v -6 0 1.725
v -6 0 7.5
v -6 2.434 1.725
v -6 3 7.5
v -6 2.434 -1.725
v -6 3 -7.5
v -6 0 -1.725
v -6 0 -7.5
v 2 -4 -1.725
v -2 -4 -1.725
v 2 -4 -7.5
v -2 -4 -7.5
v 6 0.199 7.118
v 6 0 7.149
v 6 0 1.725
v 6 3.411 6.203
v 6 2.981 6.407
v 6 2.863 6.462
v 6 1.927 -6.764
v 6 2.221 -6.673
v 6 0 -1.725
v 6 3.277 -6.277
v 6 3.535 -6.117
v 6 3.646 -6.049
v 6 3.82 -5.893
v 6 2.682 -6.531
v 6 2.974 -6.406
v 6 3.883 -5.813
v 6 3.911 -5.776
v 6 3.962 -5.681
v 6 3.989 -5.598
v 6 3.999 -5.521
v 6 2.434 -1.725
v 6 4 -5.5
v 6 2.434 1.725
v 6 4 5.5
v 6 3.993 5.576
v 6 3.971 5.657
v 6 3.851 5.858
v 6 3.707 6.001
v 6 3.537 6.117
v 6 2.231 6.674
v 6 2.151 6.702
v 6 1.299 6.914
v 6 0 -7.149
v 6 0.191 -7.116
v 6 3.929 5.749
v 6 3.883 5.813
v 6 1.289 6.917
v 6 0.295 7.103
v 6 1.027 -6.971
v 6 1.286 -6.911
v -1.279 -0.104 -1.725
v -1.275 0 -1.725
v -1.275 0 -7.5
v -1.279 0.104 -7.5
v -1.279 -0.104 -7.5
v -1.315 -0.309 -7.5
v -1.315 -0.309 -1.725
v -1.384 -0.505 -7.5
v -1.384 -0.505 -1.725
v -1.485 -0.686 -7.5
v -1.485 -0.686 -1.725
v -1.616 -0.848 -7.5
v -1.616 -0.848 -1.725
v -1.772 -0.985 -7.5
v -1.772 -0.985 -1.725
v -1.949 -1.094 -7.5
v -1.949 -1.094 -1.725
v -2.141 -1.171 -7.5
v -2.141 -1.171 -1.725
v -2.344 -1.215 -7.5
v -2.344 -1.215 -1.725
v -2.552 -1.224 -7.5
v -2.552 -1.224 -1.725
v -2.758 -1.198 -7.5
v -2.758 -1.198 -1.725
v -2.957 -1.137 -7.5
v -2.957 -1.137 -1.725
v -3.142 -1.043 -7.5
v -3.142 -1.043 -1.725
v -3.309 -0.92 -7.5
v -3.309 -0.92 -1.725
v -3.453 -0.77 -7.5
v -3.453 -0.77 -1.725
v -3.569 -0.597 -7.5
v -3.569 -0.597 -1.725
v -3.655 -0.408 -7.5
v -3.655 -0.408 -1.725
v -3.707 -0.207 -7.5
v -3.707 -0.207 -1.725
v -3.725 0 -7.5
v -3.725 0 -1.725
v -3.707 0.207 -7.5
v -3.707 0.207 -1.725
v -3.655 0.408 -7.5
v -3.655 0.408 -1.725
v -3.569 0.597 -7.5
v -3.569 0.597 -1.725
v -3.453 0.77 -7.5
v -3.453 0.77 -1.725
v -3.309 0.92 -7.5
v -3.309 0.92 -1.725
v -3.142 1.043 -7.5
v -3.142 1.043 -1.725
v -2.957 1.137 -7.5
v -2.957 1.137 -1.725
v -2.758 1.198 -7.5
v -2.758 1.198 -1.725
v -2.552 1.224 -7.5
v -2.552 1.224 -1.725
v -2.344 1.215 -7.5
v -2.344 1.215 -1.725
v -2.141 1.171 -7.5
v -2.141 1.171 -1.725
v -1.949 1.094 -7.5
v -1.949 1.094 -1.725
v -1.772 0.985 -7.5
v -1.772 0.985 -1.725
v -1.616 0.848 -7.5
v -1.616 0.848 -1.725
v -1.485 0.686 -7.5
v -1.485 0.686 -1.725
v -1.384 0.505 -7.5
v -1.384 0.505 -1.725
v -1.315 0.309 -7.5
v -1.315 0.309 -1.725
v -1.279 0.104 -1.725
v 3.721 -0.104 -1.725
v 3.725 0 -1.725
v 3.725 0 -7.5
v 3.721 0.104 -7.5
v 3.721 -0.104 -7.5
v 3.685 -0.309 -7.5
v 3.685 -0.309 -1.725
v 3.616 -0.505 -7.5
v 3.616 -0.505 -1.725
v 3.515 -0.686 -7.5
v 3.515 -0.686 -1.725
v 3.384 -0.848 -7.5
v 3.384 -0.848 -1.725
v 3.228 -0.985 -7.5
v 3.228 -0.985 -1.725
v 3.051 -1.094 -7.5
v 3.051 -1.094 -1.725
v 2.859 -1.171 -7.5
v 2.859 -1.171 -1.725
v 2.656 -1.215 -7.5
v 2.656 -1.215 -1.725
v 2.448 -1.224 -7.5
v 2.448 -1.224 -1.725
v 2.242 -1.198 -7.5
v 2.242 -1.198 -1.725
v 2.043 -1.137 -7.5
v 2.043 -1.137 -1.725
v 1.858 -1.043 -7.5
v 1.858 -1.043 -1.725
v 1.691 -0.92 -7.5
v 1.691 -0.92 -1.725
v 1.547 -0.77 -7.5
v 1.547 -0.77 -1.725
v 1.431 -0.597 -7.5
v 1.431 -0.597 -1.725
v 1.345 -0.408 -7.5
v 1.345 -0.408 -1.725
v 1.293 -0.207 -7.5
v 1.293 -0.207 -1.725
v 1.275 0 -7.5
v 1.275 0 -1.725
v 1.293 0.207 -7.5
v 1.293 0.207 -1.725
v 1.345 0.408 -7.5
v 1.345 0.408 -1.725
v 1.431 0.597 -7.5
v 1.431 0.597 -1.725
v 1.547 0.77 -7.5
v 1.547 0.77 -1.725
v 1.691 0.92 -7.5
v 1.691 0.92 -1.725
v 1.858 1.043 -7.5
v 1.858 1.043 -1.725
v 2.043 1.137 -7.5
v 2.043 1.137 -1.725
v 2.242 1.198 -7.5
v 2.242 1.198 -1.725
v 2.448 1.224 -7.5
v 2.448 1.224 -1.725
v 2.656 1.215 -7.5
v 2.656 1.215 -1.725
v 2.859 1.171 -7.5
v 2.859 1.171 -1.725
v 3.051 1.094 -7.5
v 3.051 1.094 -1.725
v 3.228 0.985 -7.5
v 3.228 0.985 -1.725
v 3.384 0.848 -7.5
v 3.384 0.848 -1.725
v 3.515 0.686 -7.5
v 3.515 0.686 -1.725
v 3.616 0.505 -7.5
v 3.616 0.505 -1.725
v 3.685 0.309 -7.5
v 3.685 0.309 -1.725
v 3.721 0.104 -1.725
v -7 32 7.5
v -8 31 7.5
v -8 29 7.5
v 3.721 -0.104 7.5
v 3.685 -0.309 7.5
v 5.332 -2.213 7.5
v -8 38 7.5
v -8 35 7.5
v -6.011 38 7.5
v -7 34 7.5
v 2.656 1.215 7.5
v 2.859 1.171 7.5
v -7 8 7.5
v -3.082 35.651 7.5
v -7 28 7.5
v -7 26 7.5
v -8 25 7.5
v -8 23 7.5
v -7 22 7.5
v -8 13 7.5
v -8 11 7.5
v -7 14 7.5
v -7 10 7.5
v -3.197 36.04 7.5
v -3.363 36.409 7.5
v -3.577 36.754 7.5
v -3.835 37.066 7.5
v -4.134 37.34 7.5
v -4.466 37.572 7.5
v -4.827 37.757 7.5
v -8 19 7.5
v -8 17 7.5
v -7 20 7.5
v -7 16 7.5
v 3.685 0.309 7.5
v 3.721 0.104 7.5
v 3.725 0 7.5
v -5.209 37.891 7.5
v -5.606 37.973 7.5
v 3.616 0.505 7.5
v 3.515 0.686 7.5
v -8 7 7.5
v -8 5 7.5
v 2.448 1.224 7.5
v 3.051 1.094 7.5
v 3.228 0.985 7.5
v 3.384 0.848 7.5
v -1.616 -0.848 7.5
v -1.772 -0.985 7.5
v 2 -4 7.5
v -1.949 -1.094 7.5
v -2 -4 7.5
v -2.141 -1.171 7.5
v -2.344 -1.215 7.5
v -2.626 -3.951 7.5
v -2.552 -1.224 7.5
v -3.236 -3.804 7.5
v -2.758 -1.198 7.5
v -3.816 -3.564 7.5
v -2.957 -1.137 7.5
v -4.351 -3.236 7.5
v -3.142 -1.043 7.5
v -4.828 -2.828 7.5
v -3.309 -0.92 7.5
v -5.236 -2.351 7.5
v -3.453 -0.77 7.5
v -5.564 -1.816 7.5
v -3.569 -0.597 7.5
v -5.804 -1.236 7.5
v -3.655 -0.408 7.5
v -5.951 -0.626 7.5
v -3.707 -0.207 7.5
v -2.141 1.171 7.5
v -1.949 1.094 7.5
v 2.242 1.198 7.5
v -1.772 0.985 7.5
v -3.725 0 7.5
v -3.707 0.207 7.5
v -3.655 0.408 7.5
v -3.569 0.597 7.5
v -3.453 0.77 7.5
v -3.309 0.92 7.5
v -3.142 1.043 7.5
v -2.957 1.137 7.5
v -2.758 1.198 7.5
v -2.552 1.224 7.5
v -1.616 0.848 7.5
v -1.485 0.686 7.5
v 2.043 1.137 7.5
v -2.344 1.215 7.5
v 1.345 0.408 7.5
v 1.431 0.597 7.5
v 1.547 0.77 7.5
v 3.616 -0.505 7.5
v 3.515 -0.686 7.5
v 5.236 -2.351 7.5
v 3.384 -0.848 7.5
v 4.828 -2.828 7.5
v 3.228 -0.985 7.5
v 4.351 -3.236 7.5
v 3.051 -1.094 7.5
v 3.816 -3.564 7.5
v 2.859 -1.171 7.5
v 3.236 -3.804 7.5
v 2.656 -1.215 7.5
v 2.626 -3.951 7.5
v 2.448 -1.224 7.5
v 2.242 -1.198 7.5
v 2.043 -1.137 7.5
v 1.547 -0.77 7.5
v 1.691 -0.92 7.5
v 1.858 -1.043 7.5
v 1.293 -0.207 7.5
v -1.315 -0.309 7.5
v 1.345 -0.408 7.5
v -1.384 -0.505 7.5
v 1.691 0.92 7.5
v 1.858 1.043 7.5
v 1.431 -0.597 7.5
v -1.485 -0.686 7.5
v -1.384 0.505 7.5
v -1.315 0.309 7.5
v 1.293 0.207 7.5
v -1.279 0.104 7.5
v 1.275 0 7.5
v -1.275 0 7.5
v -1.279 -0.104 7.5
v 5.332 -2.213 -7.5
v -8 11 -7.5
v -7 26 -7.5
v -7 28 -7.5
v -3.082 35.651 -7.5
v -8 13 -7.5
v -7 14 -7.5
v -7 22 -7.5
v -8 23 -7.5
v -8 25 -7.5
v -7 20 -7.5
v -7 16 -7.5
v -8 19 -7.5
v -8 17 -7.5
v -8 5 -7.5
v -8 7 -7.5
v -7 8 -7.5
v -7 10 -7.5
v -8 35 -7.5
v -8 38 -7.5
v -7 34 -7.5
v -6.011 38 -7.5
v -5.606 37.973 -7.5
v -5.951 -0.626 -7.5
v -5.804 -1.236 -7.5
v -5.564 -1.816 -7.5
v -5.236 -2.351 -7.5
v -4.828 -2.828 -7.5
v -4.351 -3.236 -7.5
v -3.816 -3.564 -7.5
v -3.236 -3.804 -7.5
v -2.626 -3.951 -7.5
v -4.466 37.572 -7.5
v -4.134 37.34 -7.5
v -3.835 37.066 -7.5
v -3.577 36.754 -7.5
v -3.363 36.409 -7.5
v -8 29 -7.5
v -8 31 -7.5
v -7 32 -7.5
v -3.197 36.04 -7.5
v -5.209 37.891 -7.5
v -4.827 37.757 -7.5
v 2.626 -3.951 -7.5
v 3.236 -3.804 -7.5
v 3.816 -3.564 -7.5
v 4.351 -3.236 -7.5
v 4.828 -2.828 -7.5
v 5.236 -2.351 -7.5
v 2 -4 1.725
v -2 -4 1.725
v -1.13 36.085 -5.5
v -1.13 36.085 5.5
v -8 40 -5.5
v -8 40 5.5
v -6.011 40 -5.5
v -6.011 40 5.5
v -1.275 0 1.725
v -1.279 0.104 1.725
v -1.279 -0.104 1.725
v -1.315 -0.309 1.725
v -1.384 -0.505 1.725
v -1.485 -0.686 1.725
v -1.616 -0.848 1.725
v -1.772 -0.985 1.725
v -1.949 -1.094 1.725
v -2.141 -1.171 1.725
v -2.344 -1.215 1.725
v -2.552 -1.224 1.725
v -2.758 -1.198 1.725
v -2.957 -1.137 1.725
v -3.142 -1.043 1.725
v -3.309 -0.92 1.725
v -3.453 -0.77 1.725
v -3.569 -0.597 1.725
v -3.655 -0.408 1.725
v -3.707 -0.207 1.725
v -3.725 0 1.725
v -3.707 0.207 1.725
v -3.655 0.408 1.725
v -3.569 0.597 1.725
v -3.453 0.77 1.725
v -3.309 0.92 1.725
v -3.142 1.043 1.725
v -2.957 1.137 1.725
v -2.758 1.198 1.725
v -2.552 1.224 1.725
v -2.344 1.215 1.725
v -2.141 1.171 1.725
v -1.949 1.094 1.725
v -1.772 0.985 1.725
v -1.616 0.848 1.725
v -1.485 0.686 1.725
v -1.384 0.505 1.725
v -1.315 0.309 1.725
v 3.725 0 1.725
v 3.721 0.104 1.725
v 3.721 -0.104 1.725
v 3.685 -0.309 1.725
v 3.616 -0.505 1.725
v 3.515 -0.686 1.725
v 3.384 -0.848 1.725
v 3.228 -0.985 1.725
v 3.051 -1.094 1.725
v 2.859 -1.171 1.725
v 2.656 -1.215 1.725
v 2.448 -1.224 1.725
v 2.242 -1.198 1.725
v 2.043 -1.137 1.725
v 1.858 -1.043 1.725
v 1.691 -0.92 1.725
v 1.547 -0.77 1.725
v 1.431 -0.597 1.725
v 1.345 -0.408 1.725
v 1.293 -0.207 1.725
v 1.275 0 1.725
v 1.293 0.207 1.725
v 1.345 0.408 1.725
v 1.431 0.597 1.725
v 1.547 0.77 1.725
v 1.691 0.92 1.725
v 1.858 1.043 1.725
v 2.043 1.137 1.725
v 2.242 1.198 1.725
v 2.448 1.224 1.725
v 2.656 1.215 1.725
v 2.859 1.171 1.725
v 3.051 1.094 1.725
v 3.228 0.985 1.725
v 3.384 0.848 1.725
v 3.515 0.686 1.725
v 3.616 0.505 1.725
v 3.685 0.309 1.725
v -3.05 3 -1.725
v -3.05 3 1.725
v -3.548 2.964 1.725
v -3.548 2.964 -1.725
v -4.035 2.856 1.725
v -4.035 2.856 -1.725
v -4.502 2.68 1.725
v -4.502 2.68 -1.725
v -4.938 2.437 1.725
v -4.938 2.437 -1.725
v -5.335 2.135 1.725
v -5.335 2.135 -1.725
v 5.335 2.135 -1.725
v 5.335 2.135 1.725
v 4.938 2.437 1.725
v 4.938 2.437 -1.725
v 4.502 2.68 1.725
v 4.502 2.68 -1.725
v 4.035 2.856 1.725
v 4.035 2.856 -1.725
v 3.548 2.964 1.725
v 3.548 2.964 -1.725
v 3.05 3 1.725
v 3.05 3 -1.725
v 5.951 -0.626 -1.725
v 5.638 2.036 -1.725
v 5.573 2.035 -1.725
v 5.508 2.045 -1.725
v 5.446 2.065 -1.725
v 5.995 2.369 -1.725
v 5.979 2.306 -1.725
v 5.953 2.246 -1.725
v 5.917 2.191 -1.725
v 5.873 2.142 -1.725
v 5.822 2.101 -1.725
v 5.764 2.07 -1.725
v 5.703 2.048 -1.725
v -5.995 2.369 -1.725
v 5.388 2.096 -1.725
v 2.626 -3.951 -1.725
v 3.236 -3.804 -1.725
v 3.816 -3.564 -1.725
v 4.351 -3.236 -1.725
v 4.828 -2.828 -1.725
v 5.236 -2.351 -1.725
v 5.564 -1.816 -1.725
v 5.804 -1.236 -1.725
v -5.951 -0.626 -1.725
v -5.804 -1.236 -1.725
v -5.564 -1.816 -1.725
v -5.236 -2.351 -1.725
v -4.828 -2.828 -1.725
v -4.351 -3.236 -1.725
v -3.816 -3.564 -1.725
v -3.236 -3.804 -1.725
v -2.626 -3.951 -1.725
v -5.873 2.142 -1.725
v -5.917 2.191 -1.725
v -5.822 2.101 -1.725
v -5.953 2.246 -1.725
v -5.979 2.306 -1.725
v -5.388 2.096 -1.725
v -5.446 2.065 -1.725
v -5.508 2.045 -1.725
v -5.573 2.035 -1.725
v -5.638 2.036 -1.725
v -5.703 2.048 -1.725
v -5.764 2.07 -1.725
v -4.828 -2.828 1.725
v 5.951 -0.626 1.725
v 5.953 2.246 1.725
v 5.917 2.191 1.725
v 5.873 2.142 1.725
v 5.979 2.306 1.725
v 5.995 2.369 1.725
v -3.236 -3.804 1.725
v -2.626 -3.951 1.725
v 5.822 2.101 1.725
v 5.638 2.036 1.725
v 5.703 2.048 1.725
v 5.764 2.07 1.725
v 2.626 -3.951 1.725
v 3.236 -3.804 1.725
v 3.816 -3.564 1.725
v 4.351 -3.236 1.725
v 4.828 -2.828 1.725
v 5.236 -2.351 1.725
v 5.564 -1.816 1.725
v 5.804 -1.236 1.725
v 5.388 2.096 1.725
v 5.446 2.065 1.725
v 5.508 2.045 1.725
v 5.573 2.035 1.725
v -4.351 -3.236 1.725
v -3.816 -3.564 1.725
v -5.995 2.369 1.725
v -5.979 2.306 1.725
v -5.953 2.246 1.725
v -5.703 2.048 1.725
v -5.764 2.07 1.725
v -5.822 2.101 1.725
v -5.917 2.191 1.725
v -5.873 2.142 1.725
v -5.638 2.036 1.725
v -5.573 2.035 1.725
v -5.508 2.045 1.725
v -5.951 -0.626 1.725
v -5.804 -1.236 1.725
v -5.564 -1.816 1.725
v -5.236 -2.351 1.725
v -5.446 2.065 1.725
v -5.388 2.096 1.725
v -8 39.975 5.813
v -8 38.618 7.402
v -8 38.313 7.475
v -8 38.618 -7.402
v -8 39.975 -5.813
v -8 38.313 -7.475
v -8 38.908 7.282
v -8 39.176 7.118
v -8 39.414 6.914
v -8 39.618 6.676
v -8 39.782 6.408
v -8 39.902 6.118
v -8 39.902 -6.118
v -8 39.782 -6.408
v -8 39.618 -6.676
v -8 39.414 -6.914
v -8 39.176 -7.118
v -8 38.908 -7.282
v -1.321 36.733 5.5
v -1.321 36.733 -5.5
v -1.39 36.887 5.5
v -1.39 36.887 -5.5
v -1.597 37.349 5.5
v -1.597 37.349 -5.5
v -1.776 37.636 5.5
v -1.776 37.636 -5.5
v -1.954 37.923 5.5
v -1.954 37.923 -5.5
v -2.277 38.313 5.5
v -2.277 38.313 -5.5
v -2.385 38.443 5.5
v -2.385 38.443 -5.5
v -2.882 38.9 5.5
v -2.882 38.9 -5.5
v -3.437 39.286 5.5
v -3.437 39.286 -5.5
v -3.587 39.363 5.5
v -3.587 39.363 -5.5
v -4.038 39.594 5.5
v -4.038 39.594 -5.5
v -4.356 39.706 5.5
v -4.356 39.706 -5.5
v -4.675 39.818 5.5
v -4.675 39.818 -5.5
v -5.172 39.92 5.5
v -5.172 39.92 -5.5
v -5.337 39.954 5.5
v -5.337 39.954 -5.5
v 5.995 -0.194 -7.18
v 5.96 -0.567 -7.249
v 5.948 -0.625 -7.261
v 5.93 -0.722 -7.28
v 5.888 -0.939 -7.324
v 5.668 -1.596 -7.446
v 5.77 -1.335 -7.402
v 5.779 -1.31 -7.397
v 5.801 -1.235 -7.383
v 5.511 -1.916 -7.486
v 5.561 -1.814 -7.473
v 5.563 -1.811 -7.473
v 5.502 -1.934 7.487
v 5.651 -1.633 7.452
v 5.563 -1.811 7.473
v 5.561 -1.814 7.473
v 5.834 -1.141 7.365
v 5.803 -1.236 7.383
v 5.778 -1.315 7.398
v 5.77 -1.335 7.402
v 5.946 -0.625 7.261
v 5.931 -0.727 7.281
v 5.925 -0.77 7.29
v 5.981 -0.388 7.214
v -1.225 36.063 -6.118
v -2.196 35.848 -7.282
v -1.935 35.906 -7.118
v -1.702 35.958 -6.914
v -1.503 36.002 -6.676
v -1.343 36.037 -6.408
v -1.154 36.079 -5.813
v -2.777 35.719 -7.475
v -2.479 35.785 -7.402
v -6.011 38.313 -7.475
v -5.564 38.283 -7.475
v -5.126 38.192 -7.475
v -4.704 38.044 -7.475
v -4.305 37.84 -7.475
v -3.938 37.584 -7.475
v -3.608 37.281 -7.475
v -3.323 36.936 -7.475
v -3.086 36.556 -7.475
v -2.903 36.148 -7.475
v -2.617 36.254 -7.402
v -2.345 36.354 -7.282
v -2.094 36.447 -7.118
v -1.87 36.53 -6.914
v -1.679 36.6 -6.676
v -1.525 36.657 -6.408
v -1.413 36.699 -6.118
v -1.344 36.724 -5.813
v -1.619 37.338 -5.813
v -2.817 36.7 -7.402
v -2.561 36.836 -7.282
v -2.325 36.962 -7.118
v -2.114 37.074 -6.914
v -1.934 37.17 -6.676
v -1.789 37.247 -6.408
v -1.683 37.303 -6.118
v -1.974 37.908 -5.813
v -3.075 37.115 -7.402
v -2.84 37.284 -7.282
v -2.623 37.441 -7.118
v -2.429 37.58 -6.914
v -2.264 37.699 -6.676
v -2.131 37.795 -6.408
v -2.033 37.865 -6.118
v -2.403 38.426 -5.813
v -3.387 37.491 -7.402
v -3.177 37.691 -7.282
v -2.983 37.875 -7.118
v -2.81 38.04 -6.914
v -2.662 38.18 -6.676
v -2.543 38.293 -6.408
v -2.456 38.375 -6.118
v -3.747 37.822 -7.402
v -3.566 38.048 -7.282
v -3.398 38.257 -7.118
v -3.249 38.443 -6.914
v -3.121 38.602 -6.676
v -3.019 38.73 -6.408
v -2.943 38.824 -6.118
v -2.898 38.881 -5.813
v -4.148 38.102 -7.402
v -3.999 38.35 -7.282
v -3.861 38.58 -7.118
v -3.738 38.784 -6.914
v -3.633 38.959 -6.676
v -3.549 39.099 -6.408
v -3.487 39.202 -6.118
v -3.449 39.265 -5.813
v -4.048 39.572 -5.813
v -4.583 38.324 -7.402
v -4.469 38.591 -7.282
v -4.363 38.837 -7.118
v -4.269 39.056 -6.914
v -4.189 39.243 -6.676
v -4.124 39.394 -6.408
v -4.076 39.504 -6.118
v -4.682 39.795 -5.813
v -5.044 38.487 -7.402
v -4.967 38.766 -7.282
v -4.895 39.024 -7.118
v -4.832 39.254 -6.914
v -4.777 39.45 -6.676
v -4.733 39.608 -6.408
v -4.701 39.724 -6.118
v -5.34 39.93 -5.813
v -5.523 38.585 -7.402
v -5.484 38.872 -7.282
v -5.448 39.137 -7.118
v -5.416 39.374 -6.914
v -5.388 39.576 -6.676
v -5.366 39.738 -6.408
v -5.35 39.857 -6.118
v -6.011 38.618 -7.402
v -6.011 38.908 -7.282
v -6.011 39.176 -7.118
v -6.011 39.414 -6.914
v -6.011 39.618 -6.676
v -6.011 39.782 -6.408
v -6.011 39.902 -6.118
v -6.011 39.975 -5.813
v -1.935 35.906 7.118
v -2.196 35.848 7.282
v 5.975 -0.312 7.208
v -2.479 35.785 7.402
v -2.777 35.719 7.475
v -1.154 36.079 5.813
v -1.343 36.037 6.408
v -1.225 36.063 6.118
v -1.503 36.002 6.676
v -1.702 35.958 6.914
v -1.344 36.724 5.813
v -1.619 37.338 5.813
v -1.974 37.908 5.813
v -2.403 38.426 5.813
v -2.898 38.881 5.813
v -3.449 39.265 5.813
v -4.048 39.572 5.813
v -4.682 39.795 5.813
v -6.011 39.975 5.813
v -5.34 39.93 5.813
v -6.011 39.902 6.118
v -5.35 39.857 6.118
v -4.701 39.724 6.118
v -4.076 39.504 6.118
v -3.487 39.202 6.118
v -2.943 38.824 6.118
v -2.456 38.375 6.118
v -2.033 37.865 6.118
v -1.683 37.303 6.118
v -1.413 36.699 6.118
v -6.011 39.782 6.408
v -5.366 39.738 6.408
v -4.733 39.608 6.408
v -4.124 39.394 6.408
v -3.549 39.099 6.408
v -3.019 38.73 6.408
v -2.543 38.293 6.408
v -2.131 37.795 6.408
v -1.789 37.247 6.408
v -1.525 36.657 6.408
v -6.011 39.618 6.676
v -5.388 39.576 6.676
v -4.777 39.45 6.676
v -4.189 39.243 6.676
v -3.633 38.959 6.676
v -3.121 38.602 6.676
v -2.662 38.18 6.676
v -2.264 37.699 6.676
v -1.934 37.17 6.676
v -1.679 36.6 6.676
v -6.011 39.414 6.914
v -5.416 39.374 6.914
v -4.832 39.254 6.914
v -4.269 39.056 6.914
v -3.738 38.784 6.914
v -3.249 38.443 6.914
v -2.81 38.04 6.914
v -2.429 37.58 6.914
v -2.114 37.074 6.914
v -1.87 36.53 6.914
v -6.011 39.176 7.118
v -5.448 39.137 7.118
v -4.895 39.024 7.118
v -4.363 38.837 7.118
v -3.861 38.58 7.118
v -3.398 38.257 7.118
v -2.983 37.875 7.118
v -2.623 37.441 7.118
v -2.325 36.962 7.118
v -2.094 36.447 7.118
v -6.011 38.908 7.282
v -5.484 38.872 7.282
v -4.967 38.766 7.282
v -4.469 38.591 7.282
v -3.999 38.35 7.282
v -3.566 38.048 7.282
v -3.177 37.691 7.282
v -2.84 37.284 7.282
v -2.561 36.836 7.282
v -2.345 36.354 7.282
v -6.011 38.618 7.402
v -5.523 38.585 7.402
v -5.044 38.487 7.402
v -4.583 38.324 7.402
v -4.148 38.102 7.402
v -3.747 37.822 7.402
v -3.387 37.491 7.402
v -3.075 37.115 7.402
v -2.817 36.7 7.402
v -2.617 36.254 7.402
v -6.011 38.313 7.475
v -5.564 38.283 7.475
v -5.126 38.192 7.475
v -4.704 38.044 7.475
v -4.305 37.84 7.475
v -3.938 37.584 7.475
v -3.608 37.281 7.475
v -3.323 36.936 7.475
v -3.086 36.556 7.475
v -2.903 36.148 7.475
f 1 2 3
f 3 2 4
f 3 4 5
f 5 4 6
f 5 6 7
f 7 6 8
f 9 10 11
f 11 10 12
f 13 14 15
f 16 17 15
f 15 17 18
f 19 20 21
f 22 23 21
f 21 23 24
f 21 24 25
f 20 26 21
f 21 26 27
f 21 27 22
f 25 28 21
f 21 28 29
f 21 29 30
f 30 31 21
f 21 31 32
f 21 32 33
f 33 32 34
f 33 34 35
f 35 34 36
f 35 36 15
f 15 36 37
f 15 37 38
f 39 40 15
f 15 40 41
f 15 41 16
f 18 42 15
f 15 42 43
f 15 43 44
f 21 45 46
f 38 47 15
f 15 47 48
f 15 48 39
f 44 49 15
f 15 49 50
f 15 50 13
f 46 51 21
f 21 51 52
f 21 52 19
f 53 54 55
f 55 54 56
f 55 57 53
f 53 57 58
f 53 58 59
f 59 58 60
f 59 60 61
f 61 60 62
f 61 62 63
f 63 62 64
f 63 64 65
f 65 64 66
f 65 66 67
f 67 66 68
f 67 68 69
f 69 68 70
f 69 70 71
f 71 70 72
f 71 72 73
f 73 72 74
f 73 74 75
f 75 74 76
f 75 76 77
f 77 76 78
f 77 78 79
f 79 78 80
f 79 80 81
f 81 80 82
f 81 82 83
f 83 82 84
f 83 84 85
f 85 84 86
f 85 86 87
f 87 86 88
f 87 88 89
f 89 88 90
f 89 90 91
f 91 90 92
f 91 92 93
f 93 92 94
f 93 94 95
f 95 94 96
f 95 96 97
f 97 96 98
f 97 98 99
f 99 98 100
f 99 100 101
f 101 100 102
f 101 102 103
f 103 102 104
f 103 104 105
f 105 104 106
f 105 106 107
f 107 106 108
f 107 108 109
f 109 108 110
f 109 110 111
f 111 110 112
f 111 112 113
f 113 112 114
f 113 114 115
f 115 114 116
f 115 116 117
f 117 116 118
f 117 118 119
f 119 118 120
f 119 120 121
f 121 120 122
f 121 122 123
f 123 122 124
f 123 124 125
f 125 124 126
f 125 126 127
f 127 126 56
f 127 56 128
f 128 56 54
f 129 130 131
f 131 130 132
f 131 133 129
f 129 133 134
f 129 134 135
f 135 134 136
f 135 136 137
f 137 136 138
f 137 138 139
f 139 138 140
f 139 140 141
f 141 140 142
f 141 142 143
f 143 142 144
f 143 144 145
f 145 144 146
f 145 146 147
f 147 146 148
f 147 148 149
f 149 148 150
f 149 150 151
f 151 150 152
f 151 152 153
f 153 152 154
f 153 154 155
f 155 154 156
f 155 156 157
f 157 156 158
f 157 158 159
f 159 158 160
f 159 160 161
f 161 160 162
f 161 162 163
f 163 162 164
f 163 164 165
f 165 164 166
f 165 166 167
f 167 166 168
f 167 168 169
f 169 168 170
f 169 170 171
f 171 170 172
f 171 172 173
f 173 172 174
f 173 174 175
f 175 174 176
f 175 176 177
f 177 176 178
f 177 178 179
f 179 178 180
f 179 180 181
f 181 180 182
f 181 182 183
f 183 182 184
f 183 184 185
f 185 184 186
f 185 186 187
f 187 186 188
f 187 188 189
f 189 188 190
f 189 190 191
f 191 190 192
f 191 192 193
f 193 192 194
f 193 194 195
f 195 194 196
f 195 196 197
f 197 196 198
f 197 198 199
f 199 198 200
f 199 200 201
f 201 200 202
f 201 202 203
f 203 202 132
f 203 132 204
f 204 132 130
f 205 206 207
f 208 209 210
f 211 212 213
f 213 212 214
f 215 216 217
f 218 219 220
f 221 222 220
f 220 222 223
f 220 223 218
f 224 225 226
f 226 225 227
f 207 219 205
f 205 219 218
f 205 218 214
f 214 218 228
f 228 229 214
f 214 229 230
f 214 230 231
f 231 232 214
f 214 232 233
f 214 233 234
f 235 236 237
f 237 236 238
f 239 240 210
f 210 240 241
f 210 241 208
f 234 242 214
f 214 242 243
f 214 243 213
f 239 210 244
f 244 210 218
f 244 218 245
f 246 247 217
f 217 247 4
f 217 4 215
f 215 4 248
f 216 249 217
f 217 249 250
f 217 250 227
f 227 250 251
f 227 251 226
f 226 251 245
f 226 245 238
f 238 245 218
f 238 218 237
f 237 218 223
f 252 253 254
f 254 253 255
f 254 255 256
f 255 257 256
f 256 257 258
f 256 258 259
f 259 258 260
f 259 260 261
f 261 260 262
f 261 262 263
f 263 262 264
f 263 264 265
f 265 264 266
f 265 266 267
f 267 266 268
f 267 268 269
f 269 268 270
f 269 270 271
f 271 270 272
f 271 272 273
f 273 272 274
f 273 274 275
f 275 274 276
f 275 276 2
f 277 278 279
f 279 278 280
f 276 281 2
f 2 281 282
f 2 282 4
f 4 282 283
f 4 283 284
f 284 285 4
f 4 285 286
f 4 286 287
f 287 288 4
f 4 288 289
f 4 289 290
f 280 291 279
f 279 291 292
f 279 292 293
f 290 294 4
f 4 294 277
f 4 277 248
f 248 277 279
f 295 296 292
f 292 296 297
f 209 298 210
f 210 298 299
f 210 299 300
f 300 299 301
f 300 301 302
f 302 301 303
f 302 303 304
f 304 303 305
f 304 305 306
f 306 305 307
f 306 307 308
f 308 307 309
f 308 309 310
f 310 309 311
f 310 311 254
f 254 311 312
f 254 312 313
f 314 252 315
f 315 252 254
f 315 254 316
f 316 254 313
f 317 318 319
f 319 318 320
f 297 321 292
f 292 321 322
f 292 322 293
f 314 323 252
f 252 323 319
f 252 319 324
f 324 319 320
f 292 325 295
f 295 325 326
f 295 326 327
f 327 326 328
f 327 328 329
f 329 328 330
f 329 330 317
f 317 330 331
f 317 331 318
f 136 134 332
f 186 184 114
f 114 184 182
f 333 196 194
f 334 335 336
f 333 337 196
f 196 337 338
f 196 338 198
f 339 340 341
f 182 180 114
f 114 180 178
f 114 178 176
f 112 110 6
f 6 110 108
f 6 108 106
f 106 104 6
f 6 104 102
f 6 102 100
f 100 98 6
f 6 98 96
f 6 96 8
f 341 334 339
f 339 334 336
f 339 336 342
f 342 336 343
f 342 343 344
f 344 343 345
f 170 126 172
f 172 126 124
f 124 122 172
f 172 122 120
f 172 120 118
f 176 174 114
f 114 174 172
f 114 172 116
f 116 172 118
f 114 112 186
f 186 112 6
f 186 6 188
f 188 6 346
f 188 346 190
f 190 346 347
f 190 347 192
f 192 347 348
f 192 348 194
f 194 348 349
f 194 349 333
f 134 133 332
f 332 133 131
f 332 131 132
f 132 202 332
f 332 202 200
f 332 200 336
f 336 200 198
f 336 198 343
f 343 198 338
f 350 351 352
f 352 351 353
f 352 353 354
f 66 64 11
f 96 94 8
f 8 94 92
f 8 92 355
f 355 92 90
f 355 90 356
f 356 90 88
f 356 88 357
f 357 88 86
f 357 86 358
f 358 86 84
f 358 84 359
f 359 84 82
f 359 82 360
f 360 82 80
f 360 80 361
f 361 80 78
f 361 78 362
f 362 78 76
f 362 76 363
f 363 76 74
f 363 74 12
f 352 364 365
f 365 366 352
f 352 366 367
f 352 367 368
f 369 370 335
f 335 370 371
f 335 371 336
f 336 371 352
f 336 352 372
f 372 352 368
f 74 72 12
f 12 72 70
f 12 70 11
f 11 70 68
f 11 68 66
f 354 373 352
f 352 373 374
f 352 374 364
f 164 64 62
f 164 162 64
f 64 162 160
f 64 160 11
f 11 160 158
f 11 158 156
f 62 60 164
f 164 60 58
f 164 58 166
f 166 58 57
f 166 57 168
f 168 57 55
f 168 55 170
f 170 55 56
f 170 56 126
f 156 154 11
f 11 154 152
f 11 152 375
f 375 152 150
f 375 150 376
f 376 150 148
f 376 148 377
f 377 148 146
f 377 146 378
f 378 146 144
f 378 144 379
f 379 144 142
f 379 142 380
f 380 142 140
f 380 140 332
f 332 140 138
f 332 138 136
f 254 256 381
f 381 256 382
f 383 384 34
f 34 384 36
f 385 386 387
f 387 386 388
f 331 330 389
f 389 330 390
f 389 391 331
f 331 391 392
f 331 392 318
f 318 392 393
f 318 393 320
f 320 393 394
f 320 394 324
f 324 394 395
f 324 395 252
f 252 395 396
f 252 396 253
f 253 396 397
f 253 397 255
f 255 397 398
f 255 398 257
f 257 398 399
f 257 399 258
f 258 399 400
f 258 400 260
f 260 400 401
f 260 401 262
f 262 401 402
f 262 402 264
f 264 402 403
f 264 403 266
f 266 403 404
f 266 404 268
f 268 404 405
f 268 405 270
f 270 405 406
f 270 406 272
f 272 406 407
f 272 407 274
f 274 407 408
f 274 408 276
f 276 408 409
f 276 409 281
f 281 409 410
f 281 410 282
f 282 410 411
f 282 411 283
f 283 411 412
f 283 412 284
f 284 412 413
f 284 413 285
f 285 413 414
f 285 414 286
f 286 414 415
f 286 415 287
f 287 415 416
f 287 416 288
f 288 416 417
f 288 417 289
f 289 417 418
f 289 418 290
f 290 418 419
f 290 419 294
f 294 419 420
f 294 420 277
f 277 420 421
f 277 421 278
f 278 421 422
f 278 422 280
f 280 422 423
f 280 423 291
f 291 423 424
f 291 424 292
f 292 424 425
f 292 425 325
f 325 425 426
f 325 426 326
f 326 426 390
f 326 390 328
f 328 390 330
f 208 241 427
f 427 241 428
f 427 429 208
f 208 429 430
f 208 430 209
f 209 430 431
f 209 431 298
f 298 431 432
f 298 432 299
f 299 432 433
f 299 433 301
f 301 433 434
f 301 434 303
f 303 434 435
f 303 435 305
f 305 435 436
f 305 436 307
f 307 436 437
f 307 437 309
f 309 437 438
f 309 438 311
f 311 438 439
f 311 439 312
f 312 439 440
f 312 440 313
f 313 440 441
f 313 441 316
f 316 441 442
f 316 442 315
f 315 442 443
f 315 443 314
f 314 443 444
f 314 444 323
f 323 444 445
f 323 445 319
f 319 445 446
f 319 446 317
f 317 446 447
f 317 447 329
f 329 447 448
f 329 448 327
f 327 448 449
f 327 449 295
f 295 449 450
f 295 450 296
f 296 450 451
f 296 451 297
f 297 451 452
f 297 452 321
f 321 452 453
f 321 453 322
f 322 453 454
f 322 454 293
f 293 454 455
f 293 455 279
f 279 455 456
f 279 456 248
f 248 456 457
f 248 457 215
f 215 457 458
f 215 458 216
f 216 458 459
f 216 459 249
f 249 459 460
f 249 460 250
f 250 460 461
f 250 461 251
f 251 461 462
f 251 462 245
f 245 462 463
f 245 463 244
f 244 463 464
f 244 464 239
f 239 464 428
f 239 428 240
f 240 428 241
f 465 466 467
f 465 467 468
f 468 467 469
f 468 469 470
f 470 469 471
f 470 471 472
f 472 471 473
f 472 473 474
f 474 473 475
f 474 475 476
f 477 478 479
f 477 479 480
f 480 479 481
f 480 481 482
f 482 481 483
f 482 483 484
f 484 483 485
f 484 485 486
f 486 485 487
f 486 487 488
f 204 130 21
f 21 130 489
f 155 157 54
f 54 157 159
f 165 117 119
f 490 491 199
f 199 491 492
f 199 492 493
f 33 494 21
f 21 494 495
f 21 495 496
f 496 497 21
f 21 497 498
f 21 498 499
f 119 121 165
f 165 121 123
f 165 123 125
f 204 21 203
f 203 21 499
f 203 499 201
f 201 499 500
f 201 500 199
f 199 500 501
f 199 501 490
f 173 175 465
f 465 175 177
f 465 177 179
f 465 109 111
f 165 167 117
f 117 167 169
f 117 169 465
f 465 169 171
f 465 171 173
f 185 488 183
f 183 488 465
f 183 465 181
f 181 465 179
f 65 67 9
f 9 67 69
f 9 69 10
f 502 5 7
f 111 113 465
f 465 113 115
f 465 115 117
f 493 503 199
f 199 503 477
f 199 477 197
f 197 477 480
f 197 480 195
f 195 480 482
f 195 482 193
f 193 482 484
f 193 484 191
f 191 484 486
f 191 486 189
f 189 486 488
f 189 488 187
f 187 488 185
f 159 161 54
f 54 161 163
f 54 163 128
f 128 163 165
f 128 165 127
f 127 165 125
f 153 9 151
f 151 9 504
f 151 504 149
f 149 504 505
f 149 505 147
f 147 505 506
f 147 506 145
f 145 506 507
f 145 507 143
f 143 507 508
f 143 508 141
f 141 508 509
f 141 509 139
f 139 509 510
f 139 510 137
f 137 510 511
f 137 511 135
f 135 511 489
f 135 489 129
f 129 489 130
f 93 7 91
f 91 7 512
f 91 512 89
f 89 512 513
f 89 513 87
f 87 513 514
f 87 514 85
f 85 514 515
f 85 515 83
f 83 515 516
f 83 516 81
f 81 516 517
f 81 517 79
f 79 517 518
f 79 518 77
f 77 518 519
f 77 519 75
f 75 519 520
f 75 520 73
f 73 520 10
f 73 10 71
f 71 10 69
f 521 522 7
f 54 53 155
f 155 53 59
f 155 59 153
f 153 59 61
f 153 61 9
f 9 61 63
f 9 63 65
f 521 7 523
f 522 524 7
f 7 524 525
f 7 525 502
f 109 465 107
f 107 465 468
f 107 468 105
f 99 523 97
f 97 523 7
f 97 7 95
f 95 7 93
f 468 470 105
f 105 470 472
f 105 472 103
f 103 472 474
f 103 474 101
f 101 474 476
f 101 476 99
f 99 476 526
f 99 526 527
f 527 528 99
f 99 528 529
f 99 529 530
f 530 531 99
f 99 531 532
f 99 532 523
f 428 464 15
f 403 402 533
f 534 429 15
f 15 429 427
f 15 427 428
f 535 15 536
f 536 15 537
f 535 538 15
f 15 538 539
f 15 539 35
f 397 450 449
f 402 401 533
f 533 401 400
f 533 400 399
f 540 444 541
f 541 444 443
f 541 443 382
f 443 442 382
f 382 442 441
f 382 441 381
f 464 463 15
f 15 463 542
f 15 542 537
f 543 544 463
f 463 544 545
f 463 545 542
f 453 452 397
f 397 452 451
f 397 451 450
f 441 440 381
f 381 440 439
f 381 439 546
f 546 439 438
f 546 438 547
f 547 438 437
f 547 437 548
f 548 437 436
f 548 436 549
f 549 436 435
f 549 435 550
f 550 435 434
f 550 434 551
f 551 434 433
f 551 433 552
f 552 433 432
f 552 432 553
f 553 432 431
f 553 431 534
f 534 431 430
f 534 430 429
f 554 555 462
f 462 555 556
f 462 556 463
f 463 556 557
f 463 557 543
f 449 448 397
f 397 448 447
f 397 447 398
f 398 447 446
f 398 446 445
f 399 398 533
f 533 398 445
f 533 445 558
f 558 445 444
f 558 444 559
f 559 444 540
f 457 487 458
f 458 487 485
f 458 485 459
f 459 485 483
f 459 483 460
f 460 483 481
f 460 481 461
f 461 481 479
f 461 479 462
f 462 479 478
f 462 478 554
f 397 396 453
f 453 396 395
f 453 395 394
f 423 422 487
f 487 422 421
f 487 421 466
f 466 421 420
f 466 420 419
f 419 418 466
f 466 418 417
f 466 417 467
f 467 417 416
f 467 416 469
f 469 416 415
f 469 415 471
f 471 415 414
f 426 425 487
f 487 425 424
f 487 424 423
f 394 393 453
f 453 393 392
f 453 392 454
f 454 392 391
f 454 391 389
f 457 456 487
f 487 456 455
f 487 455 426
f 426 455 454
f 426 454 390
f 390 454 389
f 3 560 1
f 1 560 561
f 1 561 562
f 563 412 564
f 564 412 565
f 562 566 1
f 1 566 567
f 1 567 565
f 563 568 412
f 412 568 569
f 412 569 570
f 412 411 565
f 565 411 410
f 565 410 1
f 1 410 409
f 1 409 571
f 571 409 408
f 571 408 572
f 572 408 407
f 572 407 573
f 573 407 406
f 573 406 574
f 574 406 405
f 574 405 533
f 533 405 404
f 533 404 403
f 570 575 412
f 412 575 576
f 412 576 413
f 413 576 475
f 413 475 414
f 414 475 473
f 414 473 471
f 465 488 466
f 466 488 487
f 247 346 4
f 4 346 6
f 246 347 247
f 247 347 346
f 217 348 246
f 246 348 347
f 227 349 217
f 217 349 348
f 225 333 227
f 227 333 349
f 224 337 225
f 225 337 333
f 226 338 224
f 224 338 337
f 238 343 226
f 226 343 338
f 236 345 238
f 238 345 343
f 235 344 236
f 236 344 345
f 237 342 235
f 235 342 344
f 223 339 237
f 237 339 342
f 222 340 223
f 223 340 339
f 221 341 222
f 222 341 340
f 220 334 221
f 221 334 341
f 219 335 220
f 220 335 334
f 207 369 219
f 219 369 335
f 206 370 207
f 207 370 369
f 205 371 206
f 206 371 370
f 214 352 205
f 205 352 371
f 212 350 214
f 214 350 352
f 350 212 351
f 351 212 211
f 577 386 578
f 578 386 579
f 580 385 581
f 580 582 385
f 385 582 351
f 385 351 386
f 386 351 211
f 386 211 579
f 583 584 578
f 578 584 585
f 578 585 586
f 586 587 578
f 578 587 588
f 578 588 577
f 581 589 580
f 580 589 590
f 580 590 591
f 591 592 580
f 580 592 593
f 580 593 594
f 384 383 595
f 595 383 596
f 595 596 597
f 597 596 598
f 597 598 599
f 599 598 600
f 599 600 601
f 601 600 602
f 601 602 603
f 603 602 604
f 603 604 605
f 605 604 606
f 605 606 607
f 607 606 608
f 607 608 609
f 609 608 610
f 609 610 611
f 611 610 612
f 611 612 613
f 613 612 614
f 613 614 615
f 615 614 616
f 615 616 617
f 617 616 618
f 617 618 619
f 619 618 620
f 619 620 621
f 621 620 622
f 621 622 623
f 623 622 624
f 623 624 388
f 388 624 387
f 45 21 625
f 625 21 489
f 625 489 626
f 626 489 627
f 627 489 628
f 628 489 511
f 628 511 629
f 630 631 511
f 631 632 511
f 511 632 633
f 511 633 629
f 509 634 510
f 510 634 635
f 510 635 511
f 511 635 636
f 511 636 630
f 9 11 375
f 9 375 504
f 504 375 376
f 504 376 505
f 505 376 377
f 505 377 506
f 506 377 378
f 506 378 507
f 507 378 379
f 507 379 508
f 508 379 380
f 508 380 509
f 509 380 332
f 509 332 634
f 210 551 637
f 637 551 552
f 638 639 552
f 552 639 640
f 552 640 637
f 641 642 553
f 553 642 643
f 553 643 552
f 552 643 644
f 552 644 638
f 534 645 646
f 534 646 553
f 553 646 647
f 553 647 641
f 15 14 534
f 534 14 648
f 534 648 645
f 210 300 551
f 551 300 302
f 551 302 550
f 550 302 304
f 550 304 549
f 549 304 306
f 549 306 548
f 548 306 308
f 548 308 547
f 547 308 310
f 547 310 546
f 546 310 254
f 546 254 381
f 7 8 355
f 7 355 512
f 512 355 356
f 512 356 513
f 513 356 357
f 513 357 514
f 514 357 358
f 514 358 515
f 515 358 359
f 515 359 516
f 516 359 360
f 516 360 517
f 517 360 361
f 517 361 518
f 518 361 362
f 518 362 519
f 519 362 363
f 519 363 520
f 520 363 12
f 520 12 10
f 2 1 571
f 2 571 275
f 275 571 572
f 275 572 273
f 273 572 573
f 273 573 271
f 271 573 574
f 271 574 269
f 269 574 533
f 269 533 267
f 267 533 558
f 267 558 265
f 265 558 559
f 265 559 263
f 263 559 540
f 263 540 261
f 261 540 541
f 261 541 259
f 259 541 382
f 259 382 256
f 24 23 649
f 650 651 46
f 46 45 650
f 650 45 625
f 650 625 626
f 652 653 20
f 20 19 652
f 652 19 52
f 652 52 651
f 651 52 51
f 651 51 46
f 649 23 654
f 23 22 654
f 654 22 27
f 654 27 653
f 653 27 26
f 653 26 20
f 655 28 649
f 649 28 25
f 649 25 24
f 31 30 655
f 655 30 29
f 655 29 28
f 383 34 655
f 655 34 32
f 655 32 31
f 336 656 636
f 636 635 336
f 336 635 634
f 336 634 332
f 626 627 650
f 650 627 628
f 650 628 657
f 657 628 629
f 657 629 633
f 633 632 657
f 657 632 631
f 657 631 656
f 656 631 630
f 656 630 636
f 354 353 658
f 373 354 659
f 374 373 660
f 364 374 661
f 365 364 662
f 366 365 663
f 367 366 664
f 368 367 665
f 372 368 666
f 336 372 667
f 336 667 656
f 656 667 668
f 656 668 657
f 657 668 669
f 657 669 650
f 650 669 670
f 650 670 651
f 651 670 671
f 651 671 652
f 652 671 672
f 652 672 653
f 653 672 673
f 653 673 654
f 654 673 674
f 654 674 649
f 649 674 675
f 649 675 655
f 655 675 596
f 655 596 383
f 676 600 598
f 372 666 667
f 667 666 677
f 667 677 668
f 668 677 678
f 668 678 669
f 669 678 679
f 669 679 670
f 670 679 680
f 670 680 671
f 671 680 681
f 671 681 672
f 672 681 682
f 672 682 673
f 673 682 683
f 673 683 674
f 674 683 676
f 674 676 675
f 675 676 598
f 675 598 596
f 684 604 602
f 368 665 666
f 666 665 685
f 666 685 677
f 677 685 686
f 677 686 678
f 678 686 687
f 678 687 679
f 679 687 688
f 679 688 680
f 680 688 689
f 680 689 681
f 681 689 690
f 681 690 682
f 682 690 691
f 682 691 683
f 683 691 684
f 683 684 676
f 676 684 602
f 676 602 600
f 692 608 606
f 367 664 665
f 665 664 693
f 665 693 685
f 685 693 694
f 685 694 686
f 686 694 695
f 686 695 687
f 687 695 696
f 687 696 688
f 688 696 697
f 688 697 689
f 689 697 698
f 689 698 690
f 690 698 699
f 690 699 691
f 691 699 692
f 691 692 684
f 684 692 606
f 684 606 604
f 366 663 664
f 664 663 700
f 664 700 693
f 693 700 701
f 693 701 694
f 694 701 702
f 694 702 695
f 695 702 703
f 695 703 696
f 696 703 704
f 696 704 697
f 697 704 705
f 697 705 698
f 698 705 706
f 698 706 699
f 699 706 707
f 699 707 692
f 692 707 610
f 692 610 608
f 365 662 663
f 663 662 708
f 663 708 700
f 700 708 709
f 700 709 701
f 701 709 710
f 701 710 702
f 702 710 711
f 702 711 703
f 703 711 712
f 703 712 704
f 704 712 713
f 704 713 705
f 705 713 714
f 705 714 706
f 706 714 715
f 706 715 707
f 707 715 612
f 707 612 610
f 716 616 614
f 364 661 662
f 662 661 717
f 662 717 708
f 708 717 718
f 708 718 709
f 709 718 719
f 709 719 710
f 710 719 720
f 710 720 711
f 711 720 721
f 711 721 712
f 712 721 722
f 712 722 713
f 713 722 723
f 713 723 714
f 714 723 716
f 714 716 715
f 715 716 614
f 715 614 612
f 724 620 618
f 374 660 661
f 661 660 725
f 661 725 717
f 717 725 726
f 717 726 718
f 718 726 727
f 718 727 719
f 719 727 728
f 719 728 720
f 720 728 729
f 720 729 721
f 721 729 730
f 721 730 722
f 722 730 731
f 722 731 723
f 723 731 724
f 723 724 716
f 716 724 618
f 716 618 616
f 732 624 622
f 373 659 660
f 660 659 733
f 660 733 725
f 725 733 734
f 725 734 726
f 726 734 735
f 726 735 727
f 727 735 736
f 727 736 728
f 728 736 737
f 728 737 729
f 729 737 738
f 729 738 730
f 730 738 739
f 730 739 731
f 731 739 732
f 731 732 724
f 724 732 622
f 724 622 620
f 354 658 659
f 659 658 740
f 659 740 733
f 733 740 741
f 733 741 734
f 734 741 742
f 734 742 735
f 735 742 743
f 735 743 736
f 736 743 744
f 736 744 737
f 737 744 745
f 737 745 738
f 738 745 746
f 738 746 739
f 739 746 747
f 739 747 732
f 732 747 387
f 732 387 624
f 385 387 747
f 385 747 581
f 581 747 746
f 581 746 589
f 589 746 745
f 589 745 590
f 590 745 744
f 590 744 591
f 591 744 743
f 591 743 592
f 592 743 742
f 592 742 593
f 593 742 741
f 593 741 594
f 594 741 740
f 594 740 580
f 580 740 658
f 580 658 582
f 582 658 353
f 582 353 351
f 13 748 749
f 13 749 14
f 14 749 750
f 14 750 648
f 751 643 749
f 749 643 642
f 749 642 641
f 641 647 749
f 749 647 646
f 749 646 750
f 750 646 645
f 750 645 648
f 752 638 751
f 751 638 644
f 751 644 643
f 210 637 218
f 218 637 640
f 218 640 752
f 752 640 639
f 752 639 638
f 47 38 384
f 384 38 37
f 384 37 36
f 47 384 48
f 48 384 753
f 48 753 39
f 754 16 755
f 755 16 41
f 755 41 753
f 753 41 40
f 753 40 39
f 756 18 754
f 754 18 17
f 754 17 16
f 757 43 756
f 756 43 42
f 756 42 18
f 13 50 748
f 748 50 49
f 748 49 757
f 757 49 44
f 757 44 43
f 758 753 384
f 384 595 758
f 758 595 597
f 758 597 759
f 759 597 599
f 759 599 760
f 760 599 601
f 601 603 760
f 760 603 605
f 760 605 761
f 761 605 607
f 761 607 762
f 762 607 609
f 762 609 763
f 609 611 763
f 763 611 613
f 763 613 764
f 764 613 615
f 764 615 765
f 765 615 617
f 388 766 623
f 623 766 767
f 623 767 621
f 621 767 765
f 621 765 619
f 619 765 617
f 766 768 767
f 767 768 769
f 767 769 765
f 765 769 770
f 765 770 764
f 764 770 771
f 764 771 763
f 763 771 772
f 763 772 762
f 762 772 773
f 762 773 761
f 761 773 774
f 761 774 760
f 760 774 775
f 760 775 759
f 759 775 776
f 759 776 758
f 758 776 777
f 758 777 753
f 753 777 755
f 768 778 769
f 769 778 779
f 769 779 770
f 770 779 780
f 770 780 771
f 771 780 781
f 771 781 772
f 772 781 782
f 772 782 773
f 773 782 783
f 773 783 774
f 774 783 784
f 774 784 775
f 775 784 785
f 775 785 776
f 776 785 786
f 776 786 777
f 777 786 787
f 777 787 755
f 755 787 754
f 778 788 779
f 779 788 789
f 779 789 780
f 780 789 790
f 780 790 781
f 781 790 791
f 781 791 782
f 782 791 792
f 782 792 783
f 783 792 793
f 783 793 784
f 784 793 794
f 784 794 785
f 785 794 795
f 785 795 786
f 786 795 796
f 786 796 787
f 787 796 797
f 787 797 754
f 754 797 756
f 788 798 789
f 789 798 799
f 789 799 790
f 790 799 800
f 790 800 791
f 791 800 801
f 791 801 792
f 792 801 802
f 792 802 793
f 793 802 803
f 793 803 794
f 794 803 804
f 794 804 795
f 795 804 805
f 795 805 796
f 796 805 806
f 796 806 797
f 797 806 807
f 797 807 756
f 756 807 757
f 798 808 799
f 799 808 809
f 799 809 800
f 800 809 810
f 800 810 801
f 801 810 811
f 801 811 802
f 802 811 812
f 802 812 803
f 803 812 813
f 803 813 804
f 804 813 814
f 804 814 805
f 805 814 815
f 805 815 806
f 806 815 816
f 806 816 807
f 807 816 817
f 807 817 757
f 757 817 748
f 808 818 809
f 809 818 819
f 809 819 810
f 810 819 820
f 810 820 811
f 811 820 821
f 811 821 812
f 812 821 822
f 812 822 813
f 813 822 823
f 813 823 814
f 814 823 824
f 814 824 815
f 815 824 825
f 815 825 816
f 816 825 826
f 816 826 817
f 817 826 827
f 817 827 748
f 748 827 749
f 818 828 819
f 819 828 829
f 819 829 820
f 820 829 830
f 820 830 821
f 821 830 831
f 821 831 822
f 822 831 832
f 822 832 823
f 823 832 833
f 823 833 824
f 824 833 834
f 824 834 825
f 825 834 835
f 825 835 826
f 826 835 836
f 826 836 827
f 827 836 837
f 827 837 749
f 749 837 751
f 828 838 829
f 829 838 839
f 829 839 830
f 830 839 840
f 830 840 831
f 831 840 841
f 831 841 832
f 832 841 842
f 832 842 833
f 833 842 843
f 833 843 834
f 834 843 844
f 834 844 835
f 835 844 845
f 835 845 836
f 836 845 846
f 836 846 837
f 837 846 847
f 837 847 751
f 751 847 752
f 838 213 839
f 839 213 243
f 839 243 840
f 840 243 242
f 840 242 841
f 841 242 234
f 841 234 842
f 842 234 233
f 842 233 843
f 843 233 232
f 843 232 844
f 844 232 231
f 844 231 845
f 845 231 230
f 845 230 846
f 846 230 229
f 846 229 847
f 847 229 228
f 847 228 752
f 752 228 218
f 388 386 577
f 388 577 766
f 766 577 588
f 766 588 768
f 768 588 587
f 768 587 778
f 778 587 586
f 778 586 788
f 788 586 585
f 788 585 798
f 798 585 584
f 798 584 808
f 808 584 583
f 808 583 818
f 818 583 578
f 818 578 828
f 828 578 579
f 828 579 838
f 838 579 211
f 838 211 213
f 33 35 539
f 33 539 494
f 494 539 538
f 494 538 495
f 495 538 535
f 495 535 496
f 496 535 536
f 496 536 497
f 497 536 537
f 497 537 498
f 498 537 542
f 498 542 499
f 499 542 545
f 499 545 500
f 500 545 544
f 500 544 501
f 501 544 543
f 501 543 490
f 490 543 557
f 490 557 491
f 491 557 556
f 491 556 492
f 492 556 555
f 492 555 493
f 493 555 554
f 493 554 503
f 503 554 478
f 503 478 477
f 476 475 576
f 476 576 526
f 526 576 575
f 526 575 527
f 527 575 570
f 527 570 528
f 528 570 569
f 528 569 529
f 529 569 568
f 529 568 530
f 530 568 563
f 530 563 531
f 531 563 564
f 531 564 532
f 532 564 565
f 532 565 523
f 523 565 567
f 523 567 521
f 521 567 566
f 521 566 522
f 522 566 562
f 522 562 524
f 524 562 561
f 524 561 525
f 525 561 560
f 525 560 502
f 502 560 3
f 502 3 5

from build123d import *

# Parameters (mm, degrees)
SKETCH1_R                       = 1.225
BOSS_EXTRUDE1_DEPTH             = 7.5
CUT_EXTRUDE2_DEPTH              = 1.725
BOSS_EXTRUDE3_REACH             = 43.137
BOSS_EXTRUDE3_DIRECTION_2_REACH = 43.137
FILLET5_R                       = 5
FILLET6_R                       = 4
FILLET7_R                       = 2
FILLET8_R                       = 0.4


with BuildPart() as part:
    # Sketch1 → Boss-Extrude1 (new, symmetric)
    with BuildSketch(Plane.XY):
        Polygon((-6, -4), (6, -4), (6, 4), (-2, 40), (-6, 40), align=None)
        with Locations((-2.5, 0)):
            Circle(SKETCH1_R, mode=Mode.SUBTRACT)
        with Locations((2.5, 0)):
            Circle(SKETCH1_R, mode=Mode.SUBTRACT)
    extrude(amount=BOSS_EXTRUDE1_DEPTH, both=True)

    # Sketch4 → Cut-Extrude2 (cut, symmetric)
    with BuildSketch(Plane.XY):
        with BuildLine():
            Line((-3.05, 3), (3.05, 3))
            ThreePointArc((3.05, 3), (5.489518395, 1.989518395), (6.5, -0.45))
            Line((6.5, -0.45), (6.5, -4))
            Line((6.5, -4), (-6.5, -4))
            Line((-6.5, -4), (-6.5, -0.45))
            ThreePointArc((-6.5, -0.45), (-5.489518395, 1.989518395), (-3.05, 3))
        make_face()
    extrude(amount=CUT_EXTRUDE2_DEPTH, both=True, mode=Mode.SUBTRACT)

    # Boss-Extrude3: up to this face of the body (flat: up to its plane)
    boss_extrude3_end = Plane(part.part.faces().sort_by_distance((-1.281464988, 14.60870086, 7.5))[0])
    # Sketch6 → Boss-Extrude3 (add, up to the picked face)
    with BuildSketch(Plane.XY, mode=Mode.PRIVATE) as boss_extrude3_sk1:
        Polygon((-6, 40), (-6, 3), (-8, 5), (-8, 7), (-7, 8), (-7, 10), (-8, 11), (-8, 13), (-7, 14), (-7, 16), (-8, 17), (-8, 19), (-7, 20), (-7, 22), (-8, 23), (-8, 25), (-7, 26), (-7, 28), (-8, 29), (-8, 31), (-7, 32), (-7, 34), (-8, 35), (-8, 40), align=None)
    boss_extrude3_tool1 = split(extrude(boss_extrude3_sk1.sketch, amount=BOSS_EXTRUDE3_REACH, mode=Mode.PRIVATE), bisect_by=boss_extrude3_end, keep=Keep.BOTH, mode=Mode.PRIVATE)
    add(boss_extrude3_tool1.solids().sort_by(Axis((-6.842105, 22.25731, 0), (0, 0, 1)))[0])

    # Boss-Extrude3 direction 2: up to this face of the body (flat: up to its plane)
    boss_extrude3_direction_2_end = Plane(part.part.faces().sort_by_distance((-1.281464988, 14.60870086, -7.5))[0])
    # Sketch6 → Boss-Extrude3 direction 2 (add, up to the picked face)
    with BuildSketch(Plane.XY, mode=Mode.PRIVATE) as boss_extrude3_direction_2_sk1:
        Polygon((-6, 40), (-6, 3), (-8, 5), (-8, 7), (-7, 8), (-7, 10), (-8, 11), (-8, 13), (-7, 14), (-7, 16), (-8, 17), (-8, 19), (-7, 20), (-7, 22), (-8, 23), (-8, 25), (-7, 26), (-7, 28), (-8, 29), (-8, 31), (-7, 32), (-7, 34), (-8, 35), (-8, 40), align=None)
    boss_extrude3_direction_2_tool1 = split(extrude(boss_extrude3_direction_2_sk1.sketch, amount=-BOSS_EXTRUDE3_DIRECTION_2_REACH, mode=Mode.PRIVATE), bisect_by=boss_extrude3_direction_2_end, keep=Keep.BOTH, mode=Mode.PRIVATE)
    add(boss_extrude3_direction_2_tool1.solids().sort_by(Axis((-6.842105, 22.25731, 0), (0, 0, -1)))[0])

    # Fillet5
    fillet5_edges = [part.edges().sort_by_distance(p)[0] for p in [
        (-2, 40, 0),
    ]]
    fillet(fillet5_edges, radius=FILLET5_R)

    # Fillet6
    fillet6_edges = [part.edges().sort_by_distance(p)[0] for p in [
        (6, -4, -4.6125),
        (-6, -4, -4.6125),
        (6, -4, 4.6125),
        (-6, -4, 4.6125),
    ]]
    fillet(fillet6_edges, radius=FILLET6_R)

    # Fillet7
    fillet7_edges = [part.edges().sort_by_distance(p)[0] for p in [
        (-2.882221064, 38.900209061, -7.5),
        (-2.882221064, 38.900209061, 7.5),
        (2.435038635, 20.042326145, -7.5),
        (2.435038635, 20.042326145, 7.5),
        (-7.005429016, 40, -7.5),
        (-7.005429016, 40, 7.5),
    ]]
    fillet(fillet7_edges, radius=FILLET7_R)

    # Fillet8
    fillet8_edges = [part.edges().sort_by_distance(p)[0] for p in [
        (6, 1.338854382, 0),
        (-6, 1.338854382, 0),
    ]]
    fillet(fillet8_edges, radius=FILLET8_R)


solid = part.part
